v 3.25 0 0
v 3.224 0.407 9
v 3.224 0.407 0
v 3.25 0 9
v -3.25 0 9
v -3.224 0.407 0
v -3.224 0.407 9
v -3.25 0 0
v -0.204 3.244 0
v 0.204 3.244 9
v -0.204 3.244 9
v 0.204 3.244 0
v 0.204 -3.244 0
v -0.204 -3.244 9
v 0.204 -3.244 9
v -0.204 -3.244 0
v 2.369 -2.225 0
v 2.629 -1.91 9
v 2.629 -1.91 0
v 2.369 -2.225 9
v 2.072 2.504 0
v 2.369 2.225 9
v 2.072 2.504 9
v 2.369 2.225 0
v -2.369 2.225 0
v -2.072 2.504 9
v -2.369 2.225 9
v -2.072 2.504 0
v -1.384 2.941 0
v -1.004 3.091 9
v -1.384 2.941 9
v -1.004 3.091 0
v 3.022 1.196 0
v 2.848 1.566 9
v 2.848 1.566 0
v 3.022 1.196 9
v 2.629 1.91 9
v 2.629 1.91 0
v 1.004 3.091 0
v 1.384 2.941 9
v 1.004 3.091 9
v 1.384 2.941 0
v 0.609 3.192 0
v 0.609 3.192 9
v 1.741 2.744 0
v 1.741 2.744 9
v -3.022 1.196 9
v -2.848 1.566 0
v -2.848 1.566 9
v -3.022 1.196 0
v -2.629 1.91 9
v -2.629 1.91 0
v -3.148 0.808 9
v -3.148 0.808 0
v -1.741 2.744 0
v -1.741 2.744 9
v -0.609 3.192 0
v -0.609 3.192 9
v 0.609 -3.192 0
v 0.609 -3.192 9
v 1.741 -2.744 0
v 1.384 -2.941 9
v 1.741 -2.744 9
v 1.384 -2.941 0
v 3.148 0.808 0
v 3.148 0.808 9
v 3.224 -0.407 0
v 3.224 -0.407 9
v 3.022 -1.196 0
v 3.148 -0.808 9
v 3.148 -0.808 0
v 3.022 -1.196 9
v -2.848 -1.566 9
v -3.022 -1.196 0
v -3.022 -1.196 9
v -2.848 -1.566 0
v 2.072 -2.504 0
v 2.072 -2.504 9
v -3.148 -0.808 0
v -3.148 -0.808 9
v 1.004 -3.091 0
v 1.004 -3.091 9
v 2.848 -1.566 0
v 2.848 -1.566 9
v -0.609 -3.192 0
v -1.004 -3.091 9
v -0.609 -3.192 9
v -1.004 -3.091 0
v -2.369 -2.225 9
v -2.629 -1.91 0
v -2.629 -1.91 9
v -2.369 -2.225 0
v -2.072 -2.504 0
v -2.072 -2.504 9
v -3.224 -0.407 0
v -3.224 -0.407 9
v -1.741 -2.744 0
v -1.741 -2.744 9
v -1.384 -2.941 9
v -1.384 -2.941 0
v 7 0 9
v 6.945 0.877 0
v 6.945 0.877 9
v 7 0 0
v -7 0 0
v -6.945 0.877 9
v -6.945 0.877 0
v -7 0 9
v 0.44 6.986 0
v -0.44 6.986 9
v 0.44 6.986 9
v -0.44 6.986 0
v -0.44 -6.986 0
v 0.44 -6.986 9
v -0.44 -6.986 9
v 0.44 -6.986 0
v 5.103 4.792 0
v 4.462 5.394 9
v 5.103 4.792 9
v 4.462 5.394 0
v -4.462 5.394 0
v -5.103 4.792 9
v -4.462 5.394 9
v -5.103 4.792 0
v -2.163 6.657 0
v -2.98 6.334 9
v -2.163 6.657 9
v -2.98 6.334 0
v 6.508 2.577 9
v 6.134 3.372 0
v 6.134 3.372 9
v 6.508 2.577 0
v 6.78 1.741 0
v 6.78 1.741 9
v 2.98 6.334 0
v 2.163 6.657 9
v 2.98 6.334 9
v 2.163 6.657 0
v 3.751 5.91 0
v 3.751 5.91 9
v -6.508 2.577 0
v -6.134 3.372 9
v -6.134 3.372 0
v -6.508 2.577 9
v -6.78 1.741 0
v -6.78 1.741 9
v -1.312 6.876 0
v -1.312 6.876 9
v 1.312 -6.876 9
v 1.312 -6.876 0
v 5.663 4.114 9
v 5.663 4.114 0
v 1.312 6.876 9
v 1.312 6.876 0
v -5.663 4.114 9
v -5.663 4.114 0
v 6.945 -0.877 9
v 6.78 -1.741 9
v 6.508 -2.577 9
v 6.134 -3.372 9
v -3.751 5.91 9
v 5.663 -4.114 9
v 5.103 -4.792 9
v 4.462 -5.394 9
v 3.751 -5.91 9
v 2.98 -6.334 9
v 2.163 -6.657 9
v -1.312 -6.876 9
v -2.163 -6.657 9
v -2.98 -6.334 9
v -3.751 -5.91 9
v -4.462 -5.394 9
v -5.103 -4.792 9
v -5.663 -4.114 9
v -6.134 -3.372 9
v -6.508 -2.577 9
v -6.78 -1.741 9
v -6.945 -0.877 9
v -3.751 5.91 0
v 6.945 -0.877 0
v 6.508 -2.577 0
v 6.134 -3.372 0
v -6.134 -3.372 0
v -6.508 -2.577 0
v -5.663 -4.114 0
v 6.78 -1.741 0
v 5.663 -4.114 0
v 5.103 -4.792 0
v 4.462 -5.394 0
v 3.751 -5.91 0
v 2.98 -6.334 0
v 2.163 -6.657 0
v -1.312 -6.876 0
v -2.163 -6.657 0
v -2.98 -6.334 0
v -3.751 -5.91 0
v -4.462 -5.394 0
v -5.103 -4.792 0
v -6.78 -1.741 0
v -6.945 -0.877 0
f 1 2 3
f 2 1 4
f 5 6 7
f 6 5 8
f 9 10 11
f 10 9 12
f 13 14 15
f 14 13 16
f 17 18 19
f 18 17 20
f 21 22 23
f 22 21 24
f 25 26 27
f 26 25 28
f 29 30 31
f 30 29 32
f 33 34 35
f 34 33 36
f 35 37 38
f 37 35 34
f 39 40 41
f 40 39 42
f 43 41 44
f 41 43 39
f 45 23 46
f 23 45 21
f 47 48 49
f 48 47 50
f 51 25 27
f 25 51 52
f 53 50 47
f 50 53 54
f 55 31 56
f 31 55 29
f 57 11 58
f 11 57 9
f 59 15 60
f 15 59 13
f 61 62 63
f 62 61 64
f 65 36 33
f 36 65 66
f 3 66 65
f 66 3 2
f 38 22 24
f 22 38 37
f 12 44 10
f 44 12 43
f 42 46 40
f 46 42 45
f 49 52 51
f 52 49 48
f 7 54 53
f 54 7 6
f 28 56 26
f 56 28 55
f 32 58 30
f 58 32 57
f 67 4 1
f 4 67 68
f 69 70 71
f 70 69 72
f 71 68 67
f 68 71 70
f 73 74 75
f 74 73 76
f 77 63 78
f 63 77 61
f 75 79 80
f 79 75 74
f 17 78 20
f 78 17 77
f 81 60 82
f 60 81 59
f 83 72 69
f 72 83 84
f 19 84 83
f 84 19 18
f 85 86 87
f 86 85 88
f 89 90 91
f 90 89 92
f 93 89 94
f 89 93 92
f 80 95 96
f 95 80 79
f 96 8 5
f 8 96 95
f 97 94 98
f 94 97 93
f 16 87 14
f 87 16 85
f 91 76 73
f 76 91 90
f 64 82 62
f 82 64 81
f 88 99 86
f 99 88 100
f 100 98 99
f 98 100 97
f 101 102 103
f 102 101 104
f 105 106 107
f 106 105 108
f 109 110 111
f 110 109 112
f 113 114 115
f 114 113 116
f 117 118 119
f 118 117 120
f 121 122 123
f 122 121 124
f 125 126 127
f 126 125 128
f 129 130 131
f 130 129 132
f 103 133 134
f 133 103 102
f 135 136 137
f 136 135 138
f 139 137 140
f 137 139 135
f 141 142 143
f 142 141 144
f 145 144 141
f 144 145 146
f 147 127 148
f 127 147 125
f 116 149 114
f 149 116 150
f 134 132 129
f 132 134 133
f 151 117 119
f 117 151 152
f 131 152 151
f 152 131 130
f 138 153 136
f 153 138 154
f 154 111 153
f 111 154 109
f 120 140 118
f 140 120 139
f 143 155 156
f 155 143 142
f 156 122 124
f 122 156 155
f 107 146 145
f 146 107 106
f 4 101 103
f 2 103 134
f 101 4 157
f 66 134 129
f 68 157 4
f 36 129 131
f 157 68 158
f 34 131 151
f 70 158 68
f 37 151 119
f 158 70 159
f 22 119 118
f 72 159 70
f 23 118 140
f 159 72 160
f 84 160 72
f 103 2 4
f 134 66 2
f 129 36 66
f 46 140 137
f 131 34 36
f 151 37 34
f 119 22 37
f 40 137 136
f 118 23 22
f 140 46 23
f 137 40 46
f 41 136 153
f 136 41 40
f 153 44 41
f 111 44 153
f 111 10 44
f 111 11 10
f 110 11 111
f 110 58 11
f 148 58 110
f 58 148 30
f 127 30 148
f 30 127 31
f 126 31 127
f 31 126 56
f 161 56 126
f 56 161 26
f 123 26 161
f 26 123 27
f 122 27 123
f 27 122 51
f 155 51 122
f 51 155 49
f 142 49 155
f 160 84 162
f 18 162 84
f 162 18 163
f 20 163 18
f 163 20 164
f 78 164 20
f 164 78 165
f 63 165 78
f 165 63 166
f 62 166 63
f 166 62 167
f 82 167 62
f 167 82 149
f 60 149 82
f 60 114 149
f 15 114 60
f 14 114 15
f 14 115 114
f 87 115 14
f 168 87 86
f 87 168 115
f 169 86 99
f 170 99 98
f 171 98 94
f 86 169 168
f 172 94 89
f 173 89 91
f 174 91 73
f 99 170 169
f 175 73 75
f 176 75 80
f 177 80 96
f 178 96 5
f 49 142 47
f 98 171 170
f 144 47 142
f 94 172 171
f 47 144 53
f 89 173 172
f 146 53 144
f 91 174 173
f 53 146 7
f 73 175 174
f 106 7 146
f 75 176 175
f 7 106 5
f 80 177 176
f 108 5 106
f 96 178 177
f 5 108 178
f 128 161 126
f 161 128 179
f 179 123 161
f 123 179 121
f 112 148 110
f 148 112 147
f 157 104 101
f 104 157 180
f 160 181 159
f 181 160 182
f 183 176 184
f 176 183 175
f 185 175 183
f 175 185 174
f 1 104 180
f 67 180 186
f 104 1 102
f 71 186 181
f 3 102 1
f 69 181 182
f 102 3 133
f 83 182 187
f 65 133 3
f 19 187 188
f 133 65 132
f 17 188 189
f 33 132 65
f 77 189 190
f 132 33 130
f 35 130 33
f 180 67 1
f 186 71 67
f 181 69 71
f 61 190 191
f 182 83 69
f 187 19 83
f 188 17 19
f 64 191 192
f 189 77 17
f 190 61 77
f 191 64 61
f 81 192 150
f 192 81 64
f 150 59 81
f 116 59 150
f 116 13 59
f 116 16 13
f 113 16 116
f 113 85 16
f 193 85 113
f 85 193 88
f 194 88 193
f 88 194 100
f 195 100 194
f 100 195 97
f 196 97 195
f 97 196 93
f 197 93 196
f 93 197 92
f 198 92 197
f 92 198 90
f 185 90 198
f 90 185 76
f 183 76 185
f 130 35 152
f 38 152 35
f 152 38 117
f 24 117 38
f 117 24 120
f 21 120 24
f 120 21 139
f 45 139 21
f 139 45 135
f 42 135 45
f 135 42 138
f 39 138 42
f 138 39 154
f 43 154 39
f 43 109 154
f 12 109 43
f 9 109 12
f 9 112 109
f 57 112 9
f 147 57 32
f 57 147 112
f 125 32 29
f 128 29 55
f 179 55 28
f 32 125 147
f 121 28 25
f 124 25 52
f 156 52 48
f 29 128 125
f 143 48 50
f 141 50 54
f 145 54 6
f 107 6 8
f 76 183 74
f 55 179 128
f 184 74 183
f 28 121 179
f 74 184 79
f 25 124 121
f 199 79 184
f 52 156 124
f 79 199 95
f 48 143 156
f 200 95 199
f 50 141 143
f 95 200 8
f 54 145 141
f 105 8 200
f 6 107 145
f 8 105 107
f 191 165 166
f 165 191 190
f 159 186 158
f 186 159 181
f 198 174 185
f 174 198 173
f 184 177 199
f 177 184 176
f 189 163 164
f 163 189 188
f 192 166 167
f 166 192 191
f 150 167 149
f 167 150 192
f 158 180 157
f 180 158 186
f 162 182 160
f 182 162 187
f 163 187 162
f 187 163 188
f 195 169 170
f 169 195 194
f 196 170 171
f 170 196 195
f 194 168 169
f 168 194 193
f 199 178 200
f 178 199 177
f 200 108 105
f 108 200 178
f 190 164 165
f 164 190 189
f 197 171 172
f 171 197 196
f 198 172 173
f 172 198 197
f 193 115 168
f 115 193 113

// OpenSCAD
$fn = 50;


difference() {
	union() {
		translate(v = [0, 0, 0]) {
			rotate(a = [0, 0, 0]) {
				cylinder(h = 9, r = 7.0000000000);
			}
		}
	}
	union() {
		translate(v = [0.0000000000, 0.0000000000, 0]) {
			rotate(a = [0, 0, 0]) {
				translate(v = [0, 0, -50]) {
					rotate(a = [0, 0, 0]) {
						cylinder(h = 100, r = 3.2500000000);
					}
				}
			}
		}
		translate(v = [0.0000000000, 0.0000000000, 0]) {
			rotate(a = [0, 0, 0]) {
				translate(v = [0, 0, -50]) {
					rotate(a = [0, 0, 0]) {
						cylinder(h = 100, r = 1.8000000000);
					}
				}
			}
		}
	}
}
